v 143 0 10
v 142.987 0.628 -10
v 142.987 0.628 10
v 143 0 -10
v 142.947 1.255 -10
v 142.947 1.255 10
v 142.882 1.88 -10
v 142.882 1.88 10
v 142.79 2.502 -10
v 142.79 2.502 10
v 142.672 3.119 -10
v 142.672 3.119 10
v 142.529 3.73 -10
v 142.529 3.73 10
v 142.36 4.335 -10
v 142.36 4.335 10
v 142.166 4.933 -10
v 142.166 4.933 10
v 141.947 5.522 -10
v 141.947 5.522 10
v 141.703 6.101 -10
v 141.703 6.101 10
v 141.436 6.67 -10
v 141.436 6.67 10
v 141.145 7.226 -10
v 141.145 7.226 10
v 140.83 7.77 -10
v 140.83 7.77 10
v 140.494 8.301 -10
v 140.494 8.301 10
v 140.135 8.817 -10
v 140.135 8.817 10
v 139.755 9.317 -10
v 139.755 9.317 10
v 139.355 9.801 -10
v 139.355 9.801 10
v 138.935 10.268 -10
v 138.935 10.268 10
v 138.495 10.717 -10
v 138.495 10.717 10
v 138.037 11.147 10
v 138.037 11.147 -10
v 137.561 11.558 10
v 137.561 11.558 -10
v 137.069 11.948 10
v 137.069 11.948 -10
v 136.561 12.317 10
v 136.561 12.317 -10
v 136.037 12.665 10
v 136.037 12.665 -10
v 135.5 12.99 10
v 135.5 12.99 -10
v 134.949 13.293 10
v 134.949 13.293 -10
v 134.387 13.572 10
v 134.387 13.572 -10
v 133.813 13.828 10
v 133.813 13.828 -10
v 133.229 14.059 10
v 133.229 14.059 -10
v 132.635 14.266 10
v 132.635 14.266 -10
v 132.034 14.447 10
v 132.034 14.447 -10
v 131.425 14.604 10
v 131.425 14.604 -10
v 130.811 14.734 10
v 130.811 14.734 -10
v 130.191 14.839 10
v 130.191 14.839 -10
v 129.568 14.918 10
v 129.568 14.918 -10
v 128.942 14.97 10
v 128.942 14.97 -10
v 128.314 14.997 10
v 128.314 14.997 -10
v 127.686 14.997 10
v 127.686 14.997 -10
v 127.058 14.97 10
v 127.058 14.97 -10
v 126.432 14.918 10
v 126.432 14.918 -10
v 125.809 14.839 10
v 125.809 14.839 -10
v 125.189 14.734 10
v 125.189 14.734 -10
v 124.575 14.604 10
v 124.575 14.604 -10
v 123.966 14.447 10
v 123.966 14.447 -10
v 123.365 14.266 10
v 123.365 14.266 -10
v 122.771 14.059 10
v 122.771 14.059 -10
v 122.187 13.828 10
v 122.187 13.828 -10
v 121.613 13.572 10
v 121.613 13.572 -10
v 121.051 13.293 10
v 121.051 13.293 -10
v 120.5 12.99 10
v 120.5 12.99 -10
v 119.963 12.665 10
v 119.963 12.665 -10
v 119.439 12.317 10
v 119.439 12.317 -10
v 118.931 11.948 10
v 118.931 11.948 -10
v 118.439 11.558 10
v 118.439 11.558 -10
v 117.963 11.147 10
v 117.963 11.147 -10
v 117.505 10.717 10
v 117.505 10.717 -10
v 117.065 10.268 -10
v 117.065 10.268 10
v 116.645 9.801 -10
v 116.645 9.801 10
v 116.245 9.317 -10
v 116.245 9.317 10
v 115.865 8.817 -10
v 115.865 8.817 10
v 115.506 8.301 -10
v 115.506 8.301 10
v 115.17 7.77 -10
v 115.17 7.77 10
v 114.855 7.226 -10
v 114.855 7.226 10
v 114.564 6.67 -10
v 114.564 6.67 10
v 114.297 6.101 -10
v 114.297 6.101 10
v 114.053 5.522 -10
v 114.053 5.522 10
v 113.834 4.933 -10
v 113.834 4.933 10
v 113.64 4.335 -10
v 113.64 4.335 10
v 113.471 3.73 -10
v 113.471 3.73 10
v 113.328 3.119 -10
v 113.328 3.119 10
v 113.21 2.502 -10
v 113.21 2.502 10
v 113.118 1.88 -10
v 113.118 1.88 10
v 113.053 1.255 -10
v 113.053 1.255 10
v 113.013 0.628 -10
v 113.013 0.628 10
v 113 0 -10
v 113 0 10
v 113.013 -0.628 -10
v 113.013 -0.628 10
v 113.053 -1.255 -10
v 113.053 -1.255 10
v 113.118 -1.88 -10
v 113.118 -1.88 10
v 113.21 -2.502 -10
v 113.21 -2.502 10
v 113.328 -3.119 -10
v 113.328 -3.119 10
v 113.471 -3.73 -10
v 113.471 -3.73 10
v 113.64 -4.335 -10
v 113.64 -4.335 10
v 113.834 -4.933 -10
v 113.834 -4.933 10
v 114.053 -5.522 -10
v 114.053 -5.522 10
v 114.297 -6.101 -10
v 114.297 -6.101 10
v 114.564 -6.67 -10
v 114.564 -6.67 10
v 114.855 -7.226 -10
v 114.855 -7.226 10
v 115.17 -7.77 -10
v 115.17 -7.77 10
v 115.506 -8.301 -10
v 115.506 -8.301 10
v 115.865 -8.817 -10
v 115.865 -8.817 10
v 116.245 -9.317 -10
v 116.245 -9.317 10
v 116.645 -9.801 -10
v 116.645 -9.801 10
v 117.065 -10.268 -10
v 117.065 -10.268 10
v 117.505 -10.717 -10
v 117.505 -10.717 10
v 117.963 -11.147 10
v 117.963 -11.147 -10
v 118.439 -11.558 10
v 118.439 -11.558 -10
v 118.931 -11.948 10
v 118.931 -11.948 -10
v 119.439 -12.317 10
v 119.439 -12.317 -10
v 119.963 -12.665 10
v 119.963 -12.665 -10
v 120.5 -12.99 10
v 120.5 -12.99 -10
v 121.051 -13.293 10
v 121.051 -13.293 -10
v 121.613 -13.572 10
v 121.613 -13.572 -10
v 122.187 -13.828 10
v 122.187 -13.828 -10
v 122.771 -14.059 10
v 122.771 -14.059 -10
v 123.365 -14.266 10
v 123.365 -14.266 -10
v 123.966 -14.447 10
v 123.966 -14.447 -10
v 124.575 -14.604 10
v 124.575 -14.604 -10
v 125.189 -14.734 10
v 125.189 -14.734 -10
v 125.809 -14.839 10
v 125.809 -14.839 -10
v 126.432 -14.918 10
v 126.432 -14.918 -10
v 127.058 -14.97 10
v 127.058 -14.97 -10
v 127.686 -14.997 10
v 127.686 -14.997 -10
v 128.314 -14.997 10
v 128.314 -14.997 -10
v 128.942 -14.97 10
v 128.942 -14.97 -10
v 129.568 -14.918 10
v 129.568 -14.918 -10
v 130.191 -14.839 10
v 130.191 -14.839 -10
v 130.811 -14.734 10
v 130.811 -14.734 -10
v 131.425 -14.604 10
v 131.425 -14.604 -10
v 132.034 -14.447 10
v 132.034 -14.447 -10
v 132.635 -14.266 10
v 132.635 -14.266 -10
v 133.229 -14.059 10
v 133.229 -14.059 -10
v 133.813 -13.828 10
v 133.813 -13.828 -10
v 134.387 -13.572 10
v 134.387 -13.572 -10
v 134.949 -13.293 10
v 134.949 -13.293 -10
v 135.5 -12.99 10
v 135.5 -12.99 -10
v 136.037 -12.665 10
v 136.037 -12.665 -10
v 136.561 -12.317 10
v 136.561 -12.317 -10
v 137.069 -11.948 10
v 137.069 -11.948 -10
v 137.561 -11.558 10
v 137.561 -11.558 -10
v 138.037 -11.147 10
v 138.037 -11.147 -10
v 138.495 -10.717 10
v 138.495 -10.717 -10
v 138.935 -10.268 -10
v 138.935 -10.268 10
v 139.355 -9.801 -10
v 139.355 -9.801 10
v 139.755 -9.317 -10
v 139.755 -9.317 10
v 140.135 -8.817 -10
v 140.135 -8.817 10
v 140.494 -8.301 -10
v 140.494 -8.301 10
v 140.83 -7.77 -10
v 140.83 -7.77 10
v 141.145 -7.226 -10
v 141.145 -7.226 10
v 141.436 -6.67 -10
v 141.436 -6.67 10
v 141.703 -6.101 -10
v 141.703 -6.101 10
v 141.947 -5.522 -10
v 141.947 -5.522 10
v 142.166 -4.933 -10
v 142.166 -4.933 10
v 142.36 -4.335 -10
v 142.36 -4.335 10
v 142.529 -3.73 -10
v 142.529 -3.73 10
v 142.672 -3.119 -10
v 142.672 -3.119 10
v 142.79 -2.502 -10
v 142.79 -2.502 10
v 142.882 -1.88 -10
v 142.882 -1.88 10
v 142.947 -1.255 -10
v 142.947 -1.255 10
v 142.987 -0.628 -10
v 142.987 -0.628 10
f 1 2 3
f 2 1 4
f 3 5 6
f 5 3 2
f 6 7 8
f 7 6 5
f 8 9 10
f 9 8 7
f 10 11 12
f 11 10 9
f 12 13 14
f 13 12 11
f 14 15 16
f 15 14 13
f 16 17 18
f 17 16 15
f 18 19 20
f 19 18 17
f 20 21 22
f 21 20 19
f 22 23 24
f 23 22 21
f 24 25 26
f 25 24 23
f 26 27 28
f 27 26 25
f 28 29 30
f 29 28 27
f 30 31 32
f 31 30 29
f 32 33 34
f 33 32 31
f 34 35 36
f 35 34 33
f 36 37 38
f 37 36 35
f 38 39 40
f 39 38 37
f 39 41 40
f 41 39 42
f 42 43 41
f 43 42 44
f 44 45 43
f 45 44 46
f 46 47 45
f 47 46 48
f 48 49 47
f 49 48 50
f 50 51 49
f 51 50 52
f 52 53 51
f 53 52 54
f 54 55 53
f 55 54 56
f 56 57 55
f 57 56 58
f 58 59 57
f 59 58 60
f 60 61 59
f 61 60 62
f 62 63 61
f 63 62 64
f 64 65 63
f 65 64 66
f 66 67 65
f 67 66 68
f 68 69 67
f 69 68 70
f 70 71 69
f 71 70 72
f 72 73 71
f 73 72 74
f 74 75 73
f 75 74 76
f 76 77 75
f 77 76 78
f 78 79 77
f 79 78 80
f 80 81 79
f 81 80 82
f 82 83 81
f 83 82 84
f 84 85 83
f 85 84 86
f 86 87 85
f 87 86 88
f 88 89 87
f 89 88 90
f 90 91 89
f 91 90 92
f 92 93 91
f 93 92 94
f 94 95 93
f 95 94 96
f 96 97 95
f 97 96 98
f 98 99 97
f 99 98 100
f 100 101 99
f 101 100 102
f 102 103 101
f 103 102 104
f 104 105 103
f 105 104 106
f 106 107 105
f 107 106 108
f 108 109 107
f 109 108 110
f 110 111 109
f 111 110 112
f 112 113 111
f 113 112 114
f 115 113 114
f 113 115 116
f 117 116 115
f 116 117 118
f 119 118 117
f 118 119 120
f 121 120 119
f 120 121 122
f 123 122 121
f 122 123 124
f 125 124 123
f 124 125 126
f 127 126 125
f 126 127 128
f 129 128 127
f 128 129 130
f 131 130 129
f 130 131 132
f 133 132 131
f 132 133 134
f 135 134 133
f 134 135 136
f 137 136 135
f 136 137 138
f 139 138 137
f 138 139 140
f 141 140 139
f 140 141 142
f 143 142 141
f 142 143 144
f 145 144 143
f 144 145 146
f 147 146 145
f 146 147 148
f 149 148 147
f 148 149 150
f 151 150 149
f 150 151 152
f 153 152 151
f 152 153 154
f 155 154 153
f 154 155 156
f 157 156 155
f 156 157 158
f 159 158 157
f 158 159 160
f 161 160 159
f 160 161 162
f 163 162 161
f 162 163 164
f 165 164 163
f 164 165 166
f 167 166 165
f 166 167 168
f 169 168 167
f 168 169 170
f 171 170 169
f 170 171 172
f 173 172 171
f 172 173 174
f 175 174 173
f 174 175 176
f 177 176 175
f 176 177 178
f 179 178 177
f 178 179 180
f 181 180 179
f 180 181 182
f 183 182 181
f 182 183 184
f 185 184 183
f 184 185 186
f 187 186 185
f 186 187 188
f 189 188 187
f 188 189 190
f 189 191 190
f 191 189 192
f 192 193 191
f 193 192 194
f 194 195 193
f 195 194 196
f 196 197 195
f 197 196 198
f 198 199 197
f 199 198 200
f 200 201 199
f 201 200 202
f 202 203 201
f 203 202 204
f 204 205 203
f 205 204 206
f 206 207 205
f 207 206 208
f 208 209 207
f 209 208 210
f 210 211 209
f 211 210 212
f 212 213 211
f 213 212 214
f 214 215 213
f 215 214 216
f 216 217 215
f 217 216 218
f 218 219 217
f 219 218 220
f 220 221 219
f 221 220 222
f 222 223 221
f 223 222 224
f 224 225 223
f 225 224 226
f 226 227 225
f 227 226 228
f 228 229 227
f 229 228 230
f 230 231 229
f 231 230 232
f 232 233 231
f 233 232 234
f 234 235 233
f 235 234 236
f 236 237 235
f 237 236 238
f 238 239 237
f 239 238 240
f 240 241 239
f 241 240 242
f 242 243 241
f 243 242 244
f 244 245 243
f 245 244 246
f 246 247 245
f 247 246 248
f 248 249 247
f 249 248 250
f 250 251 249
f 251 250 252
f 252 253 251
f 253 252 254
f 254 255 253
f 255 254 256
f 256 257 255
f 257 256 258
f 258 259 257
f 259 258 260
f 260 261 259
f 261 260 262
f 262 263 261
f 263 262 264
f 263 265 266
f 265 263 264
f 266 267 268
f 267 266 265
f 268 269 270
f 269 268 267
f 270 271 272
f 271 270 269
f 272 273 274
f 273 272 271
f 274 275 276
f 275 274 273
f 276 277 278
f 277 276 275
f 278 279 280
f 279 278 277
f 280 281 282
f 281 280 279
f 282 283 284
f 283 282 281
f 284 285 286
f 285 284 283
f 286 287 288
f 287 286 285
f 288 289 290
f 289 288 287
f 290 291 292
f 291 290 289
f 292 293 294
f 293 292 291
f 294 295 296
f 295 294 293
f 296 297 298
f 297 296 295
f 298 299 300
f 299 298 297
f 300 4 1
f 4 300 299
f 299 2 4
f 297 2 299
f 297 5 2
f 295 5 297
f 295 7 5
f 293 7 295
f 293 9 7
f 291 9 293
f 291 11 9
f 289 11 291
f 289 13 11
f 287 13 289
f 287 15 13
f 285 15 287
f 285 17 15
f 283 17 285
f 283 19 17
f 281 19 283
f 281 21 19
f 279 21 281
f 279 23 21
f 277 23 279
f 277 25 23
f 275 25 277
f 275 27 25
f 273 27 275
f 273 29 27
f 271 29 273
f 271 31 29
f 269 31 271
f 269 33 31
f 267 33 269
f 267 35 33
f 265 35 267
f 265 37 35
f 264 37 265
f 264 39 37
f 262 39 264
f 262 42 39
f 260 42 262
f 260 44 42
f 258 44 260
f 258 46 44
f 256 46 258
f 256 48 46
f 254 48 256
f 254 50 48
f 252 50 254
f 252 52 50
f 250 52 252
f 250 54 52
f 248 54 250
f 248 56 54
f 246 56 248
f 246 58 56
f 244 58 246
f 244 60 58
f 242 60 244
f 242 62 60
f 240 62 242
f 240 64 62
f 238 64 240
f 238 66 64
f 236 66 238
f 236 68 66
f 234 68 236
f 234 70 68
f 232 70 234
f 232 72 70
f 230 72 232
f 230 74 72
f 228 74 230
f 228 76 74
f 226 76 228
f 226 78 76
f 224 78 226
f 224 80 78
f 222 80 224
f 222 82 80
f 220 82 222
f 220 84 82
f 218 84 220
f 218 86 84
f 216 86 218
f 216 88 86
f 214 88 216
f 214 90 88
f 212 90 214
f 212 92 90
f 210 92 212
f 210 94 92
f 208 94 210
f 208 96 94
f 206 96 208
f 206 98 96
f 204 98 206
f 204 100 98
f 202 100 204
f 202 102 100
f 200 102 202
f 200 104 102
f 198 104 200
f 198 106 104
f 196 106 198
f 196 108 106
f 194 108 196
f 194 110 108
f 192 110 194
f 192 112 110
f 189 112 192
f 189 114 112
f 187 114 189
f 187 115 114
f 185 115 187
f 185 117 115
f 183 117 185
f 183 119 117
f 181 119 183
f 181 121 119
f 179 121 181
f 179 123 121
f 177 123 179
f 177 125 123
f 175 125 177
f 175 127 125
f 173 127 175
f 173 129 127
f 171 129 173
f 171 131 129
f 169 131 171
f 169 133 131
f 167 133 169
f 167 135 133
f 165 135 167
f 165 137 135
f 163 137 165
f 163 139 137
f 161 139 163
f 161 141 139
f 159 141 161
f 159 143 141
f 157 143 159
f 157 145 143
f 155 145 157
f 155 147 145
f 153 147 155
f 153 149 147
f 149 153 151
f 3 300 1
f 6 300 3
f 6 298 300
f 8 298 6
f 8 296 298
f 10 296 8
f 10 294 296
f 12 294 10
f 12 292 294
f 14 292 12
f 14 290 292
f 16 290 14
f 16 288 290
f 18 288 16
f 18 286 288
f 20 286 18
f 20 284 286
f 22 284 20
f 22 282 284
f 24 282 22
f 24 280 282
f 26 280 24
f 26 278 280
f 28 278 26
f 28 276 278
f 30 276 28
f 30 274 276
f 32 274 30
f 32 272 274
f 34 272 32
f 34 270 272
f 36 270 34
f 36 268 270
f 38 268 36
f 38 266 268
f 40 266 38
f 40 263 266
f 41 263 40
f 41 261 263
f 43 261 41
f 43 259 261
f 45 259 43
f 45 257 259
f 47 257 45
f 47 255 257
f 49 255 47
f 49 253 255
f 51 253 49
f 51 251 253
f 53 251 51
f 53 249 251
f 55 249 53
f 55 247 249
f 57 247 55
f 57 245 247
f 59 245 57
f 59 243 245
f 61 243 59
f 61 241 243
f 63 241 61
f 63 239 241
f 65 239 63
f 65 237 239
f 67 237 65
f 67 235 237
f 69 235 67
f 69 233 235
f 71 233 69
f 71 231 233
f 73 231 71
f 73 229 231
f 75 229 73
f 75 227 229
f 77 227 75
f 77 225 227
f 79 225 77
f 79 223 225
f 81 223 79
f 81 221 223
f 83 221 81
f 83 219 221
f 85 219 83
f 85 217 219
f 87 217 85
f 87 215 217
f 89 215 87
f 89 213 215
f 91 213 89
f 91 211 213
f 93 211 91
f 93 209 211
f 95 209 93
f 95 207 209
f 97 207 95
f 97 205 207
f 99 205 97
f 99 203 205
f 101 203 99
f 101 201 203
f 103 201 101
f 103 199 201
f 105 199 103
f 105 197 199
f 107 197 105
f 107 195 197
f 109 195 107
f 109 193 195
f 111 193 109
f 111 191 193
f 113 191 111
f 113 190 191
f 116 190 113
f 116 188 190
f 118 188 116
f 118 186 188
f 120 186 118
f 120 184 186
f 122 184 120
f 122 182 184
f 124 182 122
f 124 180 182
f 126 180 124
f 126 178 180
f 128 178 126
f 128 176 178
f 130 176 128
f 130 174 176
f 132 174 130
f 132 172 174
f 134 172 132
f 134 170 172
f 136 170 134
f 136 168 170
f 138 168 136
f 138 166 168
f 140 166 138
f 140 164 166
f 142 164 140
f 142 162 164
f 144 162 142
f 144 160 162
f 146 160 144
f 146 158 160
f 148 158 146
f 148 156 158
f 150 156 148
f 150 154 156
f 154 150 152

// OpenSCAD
$fn = 150;

translate([128, 0, 0])
rotate([0, 0, 0])
cylinder(20, 15, 15, true);
